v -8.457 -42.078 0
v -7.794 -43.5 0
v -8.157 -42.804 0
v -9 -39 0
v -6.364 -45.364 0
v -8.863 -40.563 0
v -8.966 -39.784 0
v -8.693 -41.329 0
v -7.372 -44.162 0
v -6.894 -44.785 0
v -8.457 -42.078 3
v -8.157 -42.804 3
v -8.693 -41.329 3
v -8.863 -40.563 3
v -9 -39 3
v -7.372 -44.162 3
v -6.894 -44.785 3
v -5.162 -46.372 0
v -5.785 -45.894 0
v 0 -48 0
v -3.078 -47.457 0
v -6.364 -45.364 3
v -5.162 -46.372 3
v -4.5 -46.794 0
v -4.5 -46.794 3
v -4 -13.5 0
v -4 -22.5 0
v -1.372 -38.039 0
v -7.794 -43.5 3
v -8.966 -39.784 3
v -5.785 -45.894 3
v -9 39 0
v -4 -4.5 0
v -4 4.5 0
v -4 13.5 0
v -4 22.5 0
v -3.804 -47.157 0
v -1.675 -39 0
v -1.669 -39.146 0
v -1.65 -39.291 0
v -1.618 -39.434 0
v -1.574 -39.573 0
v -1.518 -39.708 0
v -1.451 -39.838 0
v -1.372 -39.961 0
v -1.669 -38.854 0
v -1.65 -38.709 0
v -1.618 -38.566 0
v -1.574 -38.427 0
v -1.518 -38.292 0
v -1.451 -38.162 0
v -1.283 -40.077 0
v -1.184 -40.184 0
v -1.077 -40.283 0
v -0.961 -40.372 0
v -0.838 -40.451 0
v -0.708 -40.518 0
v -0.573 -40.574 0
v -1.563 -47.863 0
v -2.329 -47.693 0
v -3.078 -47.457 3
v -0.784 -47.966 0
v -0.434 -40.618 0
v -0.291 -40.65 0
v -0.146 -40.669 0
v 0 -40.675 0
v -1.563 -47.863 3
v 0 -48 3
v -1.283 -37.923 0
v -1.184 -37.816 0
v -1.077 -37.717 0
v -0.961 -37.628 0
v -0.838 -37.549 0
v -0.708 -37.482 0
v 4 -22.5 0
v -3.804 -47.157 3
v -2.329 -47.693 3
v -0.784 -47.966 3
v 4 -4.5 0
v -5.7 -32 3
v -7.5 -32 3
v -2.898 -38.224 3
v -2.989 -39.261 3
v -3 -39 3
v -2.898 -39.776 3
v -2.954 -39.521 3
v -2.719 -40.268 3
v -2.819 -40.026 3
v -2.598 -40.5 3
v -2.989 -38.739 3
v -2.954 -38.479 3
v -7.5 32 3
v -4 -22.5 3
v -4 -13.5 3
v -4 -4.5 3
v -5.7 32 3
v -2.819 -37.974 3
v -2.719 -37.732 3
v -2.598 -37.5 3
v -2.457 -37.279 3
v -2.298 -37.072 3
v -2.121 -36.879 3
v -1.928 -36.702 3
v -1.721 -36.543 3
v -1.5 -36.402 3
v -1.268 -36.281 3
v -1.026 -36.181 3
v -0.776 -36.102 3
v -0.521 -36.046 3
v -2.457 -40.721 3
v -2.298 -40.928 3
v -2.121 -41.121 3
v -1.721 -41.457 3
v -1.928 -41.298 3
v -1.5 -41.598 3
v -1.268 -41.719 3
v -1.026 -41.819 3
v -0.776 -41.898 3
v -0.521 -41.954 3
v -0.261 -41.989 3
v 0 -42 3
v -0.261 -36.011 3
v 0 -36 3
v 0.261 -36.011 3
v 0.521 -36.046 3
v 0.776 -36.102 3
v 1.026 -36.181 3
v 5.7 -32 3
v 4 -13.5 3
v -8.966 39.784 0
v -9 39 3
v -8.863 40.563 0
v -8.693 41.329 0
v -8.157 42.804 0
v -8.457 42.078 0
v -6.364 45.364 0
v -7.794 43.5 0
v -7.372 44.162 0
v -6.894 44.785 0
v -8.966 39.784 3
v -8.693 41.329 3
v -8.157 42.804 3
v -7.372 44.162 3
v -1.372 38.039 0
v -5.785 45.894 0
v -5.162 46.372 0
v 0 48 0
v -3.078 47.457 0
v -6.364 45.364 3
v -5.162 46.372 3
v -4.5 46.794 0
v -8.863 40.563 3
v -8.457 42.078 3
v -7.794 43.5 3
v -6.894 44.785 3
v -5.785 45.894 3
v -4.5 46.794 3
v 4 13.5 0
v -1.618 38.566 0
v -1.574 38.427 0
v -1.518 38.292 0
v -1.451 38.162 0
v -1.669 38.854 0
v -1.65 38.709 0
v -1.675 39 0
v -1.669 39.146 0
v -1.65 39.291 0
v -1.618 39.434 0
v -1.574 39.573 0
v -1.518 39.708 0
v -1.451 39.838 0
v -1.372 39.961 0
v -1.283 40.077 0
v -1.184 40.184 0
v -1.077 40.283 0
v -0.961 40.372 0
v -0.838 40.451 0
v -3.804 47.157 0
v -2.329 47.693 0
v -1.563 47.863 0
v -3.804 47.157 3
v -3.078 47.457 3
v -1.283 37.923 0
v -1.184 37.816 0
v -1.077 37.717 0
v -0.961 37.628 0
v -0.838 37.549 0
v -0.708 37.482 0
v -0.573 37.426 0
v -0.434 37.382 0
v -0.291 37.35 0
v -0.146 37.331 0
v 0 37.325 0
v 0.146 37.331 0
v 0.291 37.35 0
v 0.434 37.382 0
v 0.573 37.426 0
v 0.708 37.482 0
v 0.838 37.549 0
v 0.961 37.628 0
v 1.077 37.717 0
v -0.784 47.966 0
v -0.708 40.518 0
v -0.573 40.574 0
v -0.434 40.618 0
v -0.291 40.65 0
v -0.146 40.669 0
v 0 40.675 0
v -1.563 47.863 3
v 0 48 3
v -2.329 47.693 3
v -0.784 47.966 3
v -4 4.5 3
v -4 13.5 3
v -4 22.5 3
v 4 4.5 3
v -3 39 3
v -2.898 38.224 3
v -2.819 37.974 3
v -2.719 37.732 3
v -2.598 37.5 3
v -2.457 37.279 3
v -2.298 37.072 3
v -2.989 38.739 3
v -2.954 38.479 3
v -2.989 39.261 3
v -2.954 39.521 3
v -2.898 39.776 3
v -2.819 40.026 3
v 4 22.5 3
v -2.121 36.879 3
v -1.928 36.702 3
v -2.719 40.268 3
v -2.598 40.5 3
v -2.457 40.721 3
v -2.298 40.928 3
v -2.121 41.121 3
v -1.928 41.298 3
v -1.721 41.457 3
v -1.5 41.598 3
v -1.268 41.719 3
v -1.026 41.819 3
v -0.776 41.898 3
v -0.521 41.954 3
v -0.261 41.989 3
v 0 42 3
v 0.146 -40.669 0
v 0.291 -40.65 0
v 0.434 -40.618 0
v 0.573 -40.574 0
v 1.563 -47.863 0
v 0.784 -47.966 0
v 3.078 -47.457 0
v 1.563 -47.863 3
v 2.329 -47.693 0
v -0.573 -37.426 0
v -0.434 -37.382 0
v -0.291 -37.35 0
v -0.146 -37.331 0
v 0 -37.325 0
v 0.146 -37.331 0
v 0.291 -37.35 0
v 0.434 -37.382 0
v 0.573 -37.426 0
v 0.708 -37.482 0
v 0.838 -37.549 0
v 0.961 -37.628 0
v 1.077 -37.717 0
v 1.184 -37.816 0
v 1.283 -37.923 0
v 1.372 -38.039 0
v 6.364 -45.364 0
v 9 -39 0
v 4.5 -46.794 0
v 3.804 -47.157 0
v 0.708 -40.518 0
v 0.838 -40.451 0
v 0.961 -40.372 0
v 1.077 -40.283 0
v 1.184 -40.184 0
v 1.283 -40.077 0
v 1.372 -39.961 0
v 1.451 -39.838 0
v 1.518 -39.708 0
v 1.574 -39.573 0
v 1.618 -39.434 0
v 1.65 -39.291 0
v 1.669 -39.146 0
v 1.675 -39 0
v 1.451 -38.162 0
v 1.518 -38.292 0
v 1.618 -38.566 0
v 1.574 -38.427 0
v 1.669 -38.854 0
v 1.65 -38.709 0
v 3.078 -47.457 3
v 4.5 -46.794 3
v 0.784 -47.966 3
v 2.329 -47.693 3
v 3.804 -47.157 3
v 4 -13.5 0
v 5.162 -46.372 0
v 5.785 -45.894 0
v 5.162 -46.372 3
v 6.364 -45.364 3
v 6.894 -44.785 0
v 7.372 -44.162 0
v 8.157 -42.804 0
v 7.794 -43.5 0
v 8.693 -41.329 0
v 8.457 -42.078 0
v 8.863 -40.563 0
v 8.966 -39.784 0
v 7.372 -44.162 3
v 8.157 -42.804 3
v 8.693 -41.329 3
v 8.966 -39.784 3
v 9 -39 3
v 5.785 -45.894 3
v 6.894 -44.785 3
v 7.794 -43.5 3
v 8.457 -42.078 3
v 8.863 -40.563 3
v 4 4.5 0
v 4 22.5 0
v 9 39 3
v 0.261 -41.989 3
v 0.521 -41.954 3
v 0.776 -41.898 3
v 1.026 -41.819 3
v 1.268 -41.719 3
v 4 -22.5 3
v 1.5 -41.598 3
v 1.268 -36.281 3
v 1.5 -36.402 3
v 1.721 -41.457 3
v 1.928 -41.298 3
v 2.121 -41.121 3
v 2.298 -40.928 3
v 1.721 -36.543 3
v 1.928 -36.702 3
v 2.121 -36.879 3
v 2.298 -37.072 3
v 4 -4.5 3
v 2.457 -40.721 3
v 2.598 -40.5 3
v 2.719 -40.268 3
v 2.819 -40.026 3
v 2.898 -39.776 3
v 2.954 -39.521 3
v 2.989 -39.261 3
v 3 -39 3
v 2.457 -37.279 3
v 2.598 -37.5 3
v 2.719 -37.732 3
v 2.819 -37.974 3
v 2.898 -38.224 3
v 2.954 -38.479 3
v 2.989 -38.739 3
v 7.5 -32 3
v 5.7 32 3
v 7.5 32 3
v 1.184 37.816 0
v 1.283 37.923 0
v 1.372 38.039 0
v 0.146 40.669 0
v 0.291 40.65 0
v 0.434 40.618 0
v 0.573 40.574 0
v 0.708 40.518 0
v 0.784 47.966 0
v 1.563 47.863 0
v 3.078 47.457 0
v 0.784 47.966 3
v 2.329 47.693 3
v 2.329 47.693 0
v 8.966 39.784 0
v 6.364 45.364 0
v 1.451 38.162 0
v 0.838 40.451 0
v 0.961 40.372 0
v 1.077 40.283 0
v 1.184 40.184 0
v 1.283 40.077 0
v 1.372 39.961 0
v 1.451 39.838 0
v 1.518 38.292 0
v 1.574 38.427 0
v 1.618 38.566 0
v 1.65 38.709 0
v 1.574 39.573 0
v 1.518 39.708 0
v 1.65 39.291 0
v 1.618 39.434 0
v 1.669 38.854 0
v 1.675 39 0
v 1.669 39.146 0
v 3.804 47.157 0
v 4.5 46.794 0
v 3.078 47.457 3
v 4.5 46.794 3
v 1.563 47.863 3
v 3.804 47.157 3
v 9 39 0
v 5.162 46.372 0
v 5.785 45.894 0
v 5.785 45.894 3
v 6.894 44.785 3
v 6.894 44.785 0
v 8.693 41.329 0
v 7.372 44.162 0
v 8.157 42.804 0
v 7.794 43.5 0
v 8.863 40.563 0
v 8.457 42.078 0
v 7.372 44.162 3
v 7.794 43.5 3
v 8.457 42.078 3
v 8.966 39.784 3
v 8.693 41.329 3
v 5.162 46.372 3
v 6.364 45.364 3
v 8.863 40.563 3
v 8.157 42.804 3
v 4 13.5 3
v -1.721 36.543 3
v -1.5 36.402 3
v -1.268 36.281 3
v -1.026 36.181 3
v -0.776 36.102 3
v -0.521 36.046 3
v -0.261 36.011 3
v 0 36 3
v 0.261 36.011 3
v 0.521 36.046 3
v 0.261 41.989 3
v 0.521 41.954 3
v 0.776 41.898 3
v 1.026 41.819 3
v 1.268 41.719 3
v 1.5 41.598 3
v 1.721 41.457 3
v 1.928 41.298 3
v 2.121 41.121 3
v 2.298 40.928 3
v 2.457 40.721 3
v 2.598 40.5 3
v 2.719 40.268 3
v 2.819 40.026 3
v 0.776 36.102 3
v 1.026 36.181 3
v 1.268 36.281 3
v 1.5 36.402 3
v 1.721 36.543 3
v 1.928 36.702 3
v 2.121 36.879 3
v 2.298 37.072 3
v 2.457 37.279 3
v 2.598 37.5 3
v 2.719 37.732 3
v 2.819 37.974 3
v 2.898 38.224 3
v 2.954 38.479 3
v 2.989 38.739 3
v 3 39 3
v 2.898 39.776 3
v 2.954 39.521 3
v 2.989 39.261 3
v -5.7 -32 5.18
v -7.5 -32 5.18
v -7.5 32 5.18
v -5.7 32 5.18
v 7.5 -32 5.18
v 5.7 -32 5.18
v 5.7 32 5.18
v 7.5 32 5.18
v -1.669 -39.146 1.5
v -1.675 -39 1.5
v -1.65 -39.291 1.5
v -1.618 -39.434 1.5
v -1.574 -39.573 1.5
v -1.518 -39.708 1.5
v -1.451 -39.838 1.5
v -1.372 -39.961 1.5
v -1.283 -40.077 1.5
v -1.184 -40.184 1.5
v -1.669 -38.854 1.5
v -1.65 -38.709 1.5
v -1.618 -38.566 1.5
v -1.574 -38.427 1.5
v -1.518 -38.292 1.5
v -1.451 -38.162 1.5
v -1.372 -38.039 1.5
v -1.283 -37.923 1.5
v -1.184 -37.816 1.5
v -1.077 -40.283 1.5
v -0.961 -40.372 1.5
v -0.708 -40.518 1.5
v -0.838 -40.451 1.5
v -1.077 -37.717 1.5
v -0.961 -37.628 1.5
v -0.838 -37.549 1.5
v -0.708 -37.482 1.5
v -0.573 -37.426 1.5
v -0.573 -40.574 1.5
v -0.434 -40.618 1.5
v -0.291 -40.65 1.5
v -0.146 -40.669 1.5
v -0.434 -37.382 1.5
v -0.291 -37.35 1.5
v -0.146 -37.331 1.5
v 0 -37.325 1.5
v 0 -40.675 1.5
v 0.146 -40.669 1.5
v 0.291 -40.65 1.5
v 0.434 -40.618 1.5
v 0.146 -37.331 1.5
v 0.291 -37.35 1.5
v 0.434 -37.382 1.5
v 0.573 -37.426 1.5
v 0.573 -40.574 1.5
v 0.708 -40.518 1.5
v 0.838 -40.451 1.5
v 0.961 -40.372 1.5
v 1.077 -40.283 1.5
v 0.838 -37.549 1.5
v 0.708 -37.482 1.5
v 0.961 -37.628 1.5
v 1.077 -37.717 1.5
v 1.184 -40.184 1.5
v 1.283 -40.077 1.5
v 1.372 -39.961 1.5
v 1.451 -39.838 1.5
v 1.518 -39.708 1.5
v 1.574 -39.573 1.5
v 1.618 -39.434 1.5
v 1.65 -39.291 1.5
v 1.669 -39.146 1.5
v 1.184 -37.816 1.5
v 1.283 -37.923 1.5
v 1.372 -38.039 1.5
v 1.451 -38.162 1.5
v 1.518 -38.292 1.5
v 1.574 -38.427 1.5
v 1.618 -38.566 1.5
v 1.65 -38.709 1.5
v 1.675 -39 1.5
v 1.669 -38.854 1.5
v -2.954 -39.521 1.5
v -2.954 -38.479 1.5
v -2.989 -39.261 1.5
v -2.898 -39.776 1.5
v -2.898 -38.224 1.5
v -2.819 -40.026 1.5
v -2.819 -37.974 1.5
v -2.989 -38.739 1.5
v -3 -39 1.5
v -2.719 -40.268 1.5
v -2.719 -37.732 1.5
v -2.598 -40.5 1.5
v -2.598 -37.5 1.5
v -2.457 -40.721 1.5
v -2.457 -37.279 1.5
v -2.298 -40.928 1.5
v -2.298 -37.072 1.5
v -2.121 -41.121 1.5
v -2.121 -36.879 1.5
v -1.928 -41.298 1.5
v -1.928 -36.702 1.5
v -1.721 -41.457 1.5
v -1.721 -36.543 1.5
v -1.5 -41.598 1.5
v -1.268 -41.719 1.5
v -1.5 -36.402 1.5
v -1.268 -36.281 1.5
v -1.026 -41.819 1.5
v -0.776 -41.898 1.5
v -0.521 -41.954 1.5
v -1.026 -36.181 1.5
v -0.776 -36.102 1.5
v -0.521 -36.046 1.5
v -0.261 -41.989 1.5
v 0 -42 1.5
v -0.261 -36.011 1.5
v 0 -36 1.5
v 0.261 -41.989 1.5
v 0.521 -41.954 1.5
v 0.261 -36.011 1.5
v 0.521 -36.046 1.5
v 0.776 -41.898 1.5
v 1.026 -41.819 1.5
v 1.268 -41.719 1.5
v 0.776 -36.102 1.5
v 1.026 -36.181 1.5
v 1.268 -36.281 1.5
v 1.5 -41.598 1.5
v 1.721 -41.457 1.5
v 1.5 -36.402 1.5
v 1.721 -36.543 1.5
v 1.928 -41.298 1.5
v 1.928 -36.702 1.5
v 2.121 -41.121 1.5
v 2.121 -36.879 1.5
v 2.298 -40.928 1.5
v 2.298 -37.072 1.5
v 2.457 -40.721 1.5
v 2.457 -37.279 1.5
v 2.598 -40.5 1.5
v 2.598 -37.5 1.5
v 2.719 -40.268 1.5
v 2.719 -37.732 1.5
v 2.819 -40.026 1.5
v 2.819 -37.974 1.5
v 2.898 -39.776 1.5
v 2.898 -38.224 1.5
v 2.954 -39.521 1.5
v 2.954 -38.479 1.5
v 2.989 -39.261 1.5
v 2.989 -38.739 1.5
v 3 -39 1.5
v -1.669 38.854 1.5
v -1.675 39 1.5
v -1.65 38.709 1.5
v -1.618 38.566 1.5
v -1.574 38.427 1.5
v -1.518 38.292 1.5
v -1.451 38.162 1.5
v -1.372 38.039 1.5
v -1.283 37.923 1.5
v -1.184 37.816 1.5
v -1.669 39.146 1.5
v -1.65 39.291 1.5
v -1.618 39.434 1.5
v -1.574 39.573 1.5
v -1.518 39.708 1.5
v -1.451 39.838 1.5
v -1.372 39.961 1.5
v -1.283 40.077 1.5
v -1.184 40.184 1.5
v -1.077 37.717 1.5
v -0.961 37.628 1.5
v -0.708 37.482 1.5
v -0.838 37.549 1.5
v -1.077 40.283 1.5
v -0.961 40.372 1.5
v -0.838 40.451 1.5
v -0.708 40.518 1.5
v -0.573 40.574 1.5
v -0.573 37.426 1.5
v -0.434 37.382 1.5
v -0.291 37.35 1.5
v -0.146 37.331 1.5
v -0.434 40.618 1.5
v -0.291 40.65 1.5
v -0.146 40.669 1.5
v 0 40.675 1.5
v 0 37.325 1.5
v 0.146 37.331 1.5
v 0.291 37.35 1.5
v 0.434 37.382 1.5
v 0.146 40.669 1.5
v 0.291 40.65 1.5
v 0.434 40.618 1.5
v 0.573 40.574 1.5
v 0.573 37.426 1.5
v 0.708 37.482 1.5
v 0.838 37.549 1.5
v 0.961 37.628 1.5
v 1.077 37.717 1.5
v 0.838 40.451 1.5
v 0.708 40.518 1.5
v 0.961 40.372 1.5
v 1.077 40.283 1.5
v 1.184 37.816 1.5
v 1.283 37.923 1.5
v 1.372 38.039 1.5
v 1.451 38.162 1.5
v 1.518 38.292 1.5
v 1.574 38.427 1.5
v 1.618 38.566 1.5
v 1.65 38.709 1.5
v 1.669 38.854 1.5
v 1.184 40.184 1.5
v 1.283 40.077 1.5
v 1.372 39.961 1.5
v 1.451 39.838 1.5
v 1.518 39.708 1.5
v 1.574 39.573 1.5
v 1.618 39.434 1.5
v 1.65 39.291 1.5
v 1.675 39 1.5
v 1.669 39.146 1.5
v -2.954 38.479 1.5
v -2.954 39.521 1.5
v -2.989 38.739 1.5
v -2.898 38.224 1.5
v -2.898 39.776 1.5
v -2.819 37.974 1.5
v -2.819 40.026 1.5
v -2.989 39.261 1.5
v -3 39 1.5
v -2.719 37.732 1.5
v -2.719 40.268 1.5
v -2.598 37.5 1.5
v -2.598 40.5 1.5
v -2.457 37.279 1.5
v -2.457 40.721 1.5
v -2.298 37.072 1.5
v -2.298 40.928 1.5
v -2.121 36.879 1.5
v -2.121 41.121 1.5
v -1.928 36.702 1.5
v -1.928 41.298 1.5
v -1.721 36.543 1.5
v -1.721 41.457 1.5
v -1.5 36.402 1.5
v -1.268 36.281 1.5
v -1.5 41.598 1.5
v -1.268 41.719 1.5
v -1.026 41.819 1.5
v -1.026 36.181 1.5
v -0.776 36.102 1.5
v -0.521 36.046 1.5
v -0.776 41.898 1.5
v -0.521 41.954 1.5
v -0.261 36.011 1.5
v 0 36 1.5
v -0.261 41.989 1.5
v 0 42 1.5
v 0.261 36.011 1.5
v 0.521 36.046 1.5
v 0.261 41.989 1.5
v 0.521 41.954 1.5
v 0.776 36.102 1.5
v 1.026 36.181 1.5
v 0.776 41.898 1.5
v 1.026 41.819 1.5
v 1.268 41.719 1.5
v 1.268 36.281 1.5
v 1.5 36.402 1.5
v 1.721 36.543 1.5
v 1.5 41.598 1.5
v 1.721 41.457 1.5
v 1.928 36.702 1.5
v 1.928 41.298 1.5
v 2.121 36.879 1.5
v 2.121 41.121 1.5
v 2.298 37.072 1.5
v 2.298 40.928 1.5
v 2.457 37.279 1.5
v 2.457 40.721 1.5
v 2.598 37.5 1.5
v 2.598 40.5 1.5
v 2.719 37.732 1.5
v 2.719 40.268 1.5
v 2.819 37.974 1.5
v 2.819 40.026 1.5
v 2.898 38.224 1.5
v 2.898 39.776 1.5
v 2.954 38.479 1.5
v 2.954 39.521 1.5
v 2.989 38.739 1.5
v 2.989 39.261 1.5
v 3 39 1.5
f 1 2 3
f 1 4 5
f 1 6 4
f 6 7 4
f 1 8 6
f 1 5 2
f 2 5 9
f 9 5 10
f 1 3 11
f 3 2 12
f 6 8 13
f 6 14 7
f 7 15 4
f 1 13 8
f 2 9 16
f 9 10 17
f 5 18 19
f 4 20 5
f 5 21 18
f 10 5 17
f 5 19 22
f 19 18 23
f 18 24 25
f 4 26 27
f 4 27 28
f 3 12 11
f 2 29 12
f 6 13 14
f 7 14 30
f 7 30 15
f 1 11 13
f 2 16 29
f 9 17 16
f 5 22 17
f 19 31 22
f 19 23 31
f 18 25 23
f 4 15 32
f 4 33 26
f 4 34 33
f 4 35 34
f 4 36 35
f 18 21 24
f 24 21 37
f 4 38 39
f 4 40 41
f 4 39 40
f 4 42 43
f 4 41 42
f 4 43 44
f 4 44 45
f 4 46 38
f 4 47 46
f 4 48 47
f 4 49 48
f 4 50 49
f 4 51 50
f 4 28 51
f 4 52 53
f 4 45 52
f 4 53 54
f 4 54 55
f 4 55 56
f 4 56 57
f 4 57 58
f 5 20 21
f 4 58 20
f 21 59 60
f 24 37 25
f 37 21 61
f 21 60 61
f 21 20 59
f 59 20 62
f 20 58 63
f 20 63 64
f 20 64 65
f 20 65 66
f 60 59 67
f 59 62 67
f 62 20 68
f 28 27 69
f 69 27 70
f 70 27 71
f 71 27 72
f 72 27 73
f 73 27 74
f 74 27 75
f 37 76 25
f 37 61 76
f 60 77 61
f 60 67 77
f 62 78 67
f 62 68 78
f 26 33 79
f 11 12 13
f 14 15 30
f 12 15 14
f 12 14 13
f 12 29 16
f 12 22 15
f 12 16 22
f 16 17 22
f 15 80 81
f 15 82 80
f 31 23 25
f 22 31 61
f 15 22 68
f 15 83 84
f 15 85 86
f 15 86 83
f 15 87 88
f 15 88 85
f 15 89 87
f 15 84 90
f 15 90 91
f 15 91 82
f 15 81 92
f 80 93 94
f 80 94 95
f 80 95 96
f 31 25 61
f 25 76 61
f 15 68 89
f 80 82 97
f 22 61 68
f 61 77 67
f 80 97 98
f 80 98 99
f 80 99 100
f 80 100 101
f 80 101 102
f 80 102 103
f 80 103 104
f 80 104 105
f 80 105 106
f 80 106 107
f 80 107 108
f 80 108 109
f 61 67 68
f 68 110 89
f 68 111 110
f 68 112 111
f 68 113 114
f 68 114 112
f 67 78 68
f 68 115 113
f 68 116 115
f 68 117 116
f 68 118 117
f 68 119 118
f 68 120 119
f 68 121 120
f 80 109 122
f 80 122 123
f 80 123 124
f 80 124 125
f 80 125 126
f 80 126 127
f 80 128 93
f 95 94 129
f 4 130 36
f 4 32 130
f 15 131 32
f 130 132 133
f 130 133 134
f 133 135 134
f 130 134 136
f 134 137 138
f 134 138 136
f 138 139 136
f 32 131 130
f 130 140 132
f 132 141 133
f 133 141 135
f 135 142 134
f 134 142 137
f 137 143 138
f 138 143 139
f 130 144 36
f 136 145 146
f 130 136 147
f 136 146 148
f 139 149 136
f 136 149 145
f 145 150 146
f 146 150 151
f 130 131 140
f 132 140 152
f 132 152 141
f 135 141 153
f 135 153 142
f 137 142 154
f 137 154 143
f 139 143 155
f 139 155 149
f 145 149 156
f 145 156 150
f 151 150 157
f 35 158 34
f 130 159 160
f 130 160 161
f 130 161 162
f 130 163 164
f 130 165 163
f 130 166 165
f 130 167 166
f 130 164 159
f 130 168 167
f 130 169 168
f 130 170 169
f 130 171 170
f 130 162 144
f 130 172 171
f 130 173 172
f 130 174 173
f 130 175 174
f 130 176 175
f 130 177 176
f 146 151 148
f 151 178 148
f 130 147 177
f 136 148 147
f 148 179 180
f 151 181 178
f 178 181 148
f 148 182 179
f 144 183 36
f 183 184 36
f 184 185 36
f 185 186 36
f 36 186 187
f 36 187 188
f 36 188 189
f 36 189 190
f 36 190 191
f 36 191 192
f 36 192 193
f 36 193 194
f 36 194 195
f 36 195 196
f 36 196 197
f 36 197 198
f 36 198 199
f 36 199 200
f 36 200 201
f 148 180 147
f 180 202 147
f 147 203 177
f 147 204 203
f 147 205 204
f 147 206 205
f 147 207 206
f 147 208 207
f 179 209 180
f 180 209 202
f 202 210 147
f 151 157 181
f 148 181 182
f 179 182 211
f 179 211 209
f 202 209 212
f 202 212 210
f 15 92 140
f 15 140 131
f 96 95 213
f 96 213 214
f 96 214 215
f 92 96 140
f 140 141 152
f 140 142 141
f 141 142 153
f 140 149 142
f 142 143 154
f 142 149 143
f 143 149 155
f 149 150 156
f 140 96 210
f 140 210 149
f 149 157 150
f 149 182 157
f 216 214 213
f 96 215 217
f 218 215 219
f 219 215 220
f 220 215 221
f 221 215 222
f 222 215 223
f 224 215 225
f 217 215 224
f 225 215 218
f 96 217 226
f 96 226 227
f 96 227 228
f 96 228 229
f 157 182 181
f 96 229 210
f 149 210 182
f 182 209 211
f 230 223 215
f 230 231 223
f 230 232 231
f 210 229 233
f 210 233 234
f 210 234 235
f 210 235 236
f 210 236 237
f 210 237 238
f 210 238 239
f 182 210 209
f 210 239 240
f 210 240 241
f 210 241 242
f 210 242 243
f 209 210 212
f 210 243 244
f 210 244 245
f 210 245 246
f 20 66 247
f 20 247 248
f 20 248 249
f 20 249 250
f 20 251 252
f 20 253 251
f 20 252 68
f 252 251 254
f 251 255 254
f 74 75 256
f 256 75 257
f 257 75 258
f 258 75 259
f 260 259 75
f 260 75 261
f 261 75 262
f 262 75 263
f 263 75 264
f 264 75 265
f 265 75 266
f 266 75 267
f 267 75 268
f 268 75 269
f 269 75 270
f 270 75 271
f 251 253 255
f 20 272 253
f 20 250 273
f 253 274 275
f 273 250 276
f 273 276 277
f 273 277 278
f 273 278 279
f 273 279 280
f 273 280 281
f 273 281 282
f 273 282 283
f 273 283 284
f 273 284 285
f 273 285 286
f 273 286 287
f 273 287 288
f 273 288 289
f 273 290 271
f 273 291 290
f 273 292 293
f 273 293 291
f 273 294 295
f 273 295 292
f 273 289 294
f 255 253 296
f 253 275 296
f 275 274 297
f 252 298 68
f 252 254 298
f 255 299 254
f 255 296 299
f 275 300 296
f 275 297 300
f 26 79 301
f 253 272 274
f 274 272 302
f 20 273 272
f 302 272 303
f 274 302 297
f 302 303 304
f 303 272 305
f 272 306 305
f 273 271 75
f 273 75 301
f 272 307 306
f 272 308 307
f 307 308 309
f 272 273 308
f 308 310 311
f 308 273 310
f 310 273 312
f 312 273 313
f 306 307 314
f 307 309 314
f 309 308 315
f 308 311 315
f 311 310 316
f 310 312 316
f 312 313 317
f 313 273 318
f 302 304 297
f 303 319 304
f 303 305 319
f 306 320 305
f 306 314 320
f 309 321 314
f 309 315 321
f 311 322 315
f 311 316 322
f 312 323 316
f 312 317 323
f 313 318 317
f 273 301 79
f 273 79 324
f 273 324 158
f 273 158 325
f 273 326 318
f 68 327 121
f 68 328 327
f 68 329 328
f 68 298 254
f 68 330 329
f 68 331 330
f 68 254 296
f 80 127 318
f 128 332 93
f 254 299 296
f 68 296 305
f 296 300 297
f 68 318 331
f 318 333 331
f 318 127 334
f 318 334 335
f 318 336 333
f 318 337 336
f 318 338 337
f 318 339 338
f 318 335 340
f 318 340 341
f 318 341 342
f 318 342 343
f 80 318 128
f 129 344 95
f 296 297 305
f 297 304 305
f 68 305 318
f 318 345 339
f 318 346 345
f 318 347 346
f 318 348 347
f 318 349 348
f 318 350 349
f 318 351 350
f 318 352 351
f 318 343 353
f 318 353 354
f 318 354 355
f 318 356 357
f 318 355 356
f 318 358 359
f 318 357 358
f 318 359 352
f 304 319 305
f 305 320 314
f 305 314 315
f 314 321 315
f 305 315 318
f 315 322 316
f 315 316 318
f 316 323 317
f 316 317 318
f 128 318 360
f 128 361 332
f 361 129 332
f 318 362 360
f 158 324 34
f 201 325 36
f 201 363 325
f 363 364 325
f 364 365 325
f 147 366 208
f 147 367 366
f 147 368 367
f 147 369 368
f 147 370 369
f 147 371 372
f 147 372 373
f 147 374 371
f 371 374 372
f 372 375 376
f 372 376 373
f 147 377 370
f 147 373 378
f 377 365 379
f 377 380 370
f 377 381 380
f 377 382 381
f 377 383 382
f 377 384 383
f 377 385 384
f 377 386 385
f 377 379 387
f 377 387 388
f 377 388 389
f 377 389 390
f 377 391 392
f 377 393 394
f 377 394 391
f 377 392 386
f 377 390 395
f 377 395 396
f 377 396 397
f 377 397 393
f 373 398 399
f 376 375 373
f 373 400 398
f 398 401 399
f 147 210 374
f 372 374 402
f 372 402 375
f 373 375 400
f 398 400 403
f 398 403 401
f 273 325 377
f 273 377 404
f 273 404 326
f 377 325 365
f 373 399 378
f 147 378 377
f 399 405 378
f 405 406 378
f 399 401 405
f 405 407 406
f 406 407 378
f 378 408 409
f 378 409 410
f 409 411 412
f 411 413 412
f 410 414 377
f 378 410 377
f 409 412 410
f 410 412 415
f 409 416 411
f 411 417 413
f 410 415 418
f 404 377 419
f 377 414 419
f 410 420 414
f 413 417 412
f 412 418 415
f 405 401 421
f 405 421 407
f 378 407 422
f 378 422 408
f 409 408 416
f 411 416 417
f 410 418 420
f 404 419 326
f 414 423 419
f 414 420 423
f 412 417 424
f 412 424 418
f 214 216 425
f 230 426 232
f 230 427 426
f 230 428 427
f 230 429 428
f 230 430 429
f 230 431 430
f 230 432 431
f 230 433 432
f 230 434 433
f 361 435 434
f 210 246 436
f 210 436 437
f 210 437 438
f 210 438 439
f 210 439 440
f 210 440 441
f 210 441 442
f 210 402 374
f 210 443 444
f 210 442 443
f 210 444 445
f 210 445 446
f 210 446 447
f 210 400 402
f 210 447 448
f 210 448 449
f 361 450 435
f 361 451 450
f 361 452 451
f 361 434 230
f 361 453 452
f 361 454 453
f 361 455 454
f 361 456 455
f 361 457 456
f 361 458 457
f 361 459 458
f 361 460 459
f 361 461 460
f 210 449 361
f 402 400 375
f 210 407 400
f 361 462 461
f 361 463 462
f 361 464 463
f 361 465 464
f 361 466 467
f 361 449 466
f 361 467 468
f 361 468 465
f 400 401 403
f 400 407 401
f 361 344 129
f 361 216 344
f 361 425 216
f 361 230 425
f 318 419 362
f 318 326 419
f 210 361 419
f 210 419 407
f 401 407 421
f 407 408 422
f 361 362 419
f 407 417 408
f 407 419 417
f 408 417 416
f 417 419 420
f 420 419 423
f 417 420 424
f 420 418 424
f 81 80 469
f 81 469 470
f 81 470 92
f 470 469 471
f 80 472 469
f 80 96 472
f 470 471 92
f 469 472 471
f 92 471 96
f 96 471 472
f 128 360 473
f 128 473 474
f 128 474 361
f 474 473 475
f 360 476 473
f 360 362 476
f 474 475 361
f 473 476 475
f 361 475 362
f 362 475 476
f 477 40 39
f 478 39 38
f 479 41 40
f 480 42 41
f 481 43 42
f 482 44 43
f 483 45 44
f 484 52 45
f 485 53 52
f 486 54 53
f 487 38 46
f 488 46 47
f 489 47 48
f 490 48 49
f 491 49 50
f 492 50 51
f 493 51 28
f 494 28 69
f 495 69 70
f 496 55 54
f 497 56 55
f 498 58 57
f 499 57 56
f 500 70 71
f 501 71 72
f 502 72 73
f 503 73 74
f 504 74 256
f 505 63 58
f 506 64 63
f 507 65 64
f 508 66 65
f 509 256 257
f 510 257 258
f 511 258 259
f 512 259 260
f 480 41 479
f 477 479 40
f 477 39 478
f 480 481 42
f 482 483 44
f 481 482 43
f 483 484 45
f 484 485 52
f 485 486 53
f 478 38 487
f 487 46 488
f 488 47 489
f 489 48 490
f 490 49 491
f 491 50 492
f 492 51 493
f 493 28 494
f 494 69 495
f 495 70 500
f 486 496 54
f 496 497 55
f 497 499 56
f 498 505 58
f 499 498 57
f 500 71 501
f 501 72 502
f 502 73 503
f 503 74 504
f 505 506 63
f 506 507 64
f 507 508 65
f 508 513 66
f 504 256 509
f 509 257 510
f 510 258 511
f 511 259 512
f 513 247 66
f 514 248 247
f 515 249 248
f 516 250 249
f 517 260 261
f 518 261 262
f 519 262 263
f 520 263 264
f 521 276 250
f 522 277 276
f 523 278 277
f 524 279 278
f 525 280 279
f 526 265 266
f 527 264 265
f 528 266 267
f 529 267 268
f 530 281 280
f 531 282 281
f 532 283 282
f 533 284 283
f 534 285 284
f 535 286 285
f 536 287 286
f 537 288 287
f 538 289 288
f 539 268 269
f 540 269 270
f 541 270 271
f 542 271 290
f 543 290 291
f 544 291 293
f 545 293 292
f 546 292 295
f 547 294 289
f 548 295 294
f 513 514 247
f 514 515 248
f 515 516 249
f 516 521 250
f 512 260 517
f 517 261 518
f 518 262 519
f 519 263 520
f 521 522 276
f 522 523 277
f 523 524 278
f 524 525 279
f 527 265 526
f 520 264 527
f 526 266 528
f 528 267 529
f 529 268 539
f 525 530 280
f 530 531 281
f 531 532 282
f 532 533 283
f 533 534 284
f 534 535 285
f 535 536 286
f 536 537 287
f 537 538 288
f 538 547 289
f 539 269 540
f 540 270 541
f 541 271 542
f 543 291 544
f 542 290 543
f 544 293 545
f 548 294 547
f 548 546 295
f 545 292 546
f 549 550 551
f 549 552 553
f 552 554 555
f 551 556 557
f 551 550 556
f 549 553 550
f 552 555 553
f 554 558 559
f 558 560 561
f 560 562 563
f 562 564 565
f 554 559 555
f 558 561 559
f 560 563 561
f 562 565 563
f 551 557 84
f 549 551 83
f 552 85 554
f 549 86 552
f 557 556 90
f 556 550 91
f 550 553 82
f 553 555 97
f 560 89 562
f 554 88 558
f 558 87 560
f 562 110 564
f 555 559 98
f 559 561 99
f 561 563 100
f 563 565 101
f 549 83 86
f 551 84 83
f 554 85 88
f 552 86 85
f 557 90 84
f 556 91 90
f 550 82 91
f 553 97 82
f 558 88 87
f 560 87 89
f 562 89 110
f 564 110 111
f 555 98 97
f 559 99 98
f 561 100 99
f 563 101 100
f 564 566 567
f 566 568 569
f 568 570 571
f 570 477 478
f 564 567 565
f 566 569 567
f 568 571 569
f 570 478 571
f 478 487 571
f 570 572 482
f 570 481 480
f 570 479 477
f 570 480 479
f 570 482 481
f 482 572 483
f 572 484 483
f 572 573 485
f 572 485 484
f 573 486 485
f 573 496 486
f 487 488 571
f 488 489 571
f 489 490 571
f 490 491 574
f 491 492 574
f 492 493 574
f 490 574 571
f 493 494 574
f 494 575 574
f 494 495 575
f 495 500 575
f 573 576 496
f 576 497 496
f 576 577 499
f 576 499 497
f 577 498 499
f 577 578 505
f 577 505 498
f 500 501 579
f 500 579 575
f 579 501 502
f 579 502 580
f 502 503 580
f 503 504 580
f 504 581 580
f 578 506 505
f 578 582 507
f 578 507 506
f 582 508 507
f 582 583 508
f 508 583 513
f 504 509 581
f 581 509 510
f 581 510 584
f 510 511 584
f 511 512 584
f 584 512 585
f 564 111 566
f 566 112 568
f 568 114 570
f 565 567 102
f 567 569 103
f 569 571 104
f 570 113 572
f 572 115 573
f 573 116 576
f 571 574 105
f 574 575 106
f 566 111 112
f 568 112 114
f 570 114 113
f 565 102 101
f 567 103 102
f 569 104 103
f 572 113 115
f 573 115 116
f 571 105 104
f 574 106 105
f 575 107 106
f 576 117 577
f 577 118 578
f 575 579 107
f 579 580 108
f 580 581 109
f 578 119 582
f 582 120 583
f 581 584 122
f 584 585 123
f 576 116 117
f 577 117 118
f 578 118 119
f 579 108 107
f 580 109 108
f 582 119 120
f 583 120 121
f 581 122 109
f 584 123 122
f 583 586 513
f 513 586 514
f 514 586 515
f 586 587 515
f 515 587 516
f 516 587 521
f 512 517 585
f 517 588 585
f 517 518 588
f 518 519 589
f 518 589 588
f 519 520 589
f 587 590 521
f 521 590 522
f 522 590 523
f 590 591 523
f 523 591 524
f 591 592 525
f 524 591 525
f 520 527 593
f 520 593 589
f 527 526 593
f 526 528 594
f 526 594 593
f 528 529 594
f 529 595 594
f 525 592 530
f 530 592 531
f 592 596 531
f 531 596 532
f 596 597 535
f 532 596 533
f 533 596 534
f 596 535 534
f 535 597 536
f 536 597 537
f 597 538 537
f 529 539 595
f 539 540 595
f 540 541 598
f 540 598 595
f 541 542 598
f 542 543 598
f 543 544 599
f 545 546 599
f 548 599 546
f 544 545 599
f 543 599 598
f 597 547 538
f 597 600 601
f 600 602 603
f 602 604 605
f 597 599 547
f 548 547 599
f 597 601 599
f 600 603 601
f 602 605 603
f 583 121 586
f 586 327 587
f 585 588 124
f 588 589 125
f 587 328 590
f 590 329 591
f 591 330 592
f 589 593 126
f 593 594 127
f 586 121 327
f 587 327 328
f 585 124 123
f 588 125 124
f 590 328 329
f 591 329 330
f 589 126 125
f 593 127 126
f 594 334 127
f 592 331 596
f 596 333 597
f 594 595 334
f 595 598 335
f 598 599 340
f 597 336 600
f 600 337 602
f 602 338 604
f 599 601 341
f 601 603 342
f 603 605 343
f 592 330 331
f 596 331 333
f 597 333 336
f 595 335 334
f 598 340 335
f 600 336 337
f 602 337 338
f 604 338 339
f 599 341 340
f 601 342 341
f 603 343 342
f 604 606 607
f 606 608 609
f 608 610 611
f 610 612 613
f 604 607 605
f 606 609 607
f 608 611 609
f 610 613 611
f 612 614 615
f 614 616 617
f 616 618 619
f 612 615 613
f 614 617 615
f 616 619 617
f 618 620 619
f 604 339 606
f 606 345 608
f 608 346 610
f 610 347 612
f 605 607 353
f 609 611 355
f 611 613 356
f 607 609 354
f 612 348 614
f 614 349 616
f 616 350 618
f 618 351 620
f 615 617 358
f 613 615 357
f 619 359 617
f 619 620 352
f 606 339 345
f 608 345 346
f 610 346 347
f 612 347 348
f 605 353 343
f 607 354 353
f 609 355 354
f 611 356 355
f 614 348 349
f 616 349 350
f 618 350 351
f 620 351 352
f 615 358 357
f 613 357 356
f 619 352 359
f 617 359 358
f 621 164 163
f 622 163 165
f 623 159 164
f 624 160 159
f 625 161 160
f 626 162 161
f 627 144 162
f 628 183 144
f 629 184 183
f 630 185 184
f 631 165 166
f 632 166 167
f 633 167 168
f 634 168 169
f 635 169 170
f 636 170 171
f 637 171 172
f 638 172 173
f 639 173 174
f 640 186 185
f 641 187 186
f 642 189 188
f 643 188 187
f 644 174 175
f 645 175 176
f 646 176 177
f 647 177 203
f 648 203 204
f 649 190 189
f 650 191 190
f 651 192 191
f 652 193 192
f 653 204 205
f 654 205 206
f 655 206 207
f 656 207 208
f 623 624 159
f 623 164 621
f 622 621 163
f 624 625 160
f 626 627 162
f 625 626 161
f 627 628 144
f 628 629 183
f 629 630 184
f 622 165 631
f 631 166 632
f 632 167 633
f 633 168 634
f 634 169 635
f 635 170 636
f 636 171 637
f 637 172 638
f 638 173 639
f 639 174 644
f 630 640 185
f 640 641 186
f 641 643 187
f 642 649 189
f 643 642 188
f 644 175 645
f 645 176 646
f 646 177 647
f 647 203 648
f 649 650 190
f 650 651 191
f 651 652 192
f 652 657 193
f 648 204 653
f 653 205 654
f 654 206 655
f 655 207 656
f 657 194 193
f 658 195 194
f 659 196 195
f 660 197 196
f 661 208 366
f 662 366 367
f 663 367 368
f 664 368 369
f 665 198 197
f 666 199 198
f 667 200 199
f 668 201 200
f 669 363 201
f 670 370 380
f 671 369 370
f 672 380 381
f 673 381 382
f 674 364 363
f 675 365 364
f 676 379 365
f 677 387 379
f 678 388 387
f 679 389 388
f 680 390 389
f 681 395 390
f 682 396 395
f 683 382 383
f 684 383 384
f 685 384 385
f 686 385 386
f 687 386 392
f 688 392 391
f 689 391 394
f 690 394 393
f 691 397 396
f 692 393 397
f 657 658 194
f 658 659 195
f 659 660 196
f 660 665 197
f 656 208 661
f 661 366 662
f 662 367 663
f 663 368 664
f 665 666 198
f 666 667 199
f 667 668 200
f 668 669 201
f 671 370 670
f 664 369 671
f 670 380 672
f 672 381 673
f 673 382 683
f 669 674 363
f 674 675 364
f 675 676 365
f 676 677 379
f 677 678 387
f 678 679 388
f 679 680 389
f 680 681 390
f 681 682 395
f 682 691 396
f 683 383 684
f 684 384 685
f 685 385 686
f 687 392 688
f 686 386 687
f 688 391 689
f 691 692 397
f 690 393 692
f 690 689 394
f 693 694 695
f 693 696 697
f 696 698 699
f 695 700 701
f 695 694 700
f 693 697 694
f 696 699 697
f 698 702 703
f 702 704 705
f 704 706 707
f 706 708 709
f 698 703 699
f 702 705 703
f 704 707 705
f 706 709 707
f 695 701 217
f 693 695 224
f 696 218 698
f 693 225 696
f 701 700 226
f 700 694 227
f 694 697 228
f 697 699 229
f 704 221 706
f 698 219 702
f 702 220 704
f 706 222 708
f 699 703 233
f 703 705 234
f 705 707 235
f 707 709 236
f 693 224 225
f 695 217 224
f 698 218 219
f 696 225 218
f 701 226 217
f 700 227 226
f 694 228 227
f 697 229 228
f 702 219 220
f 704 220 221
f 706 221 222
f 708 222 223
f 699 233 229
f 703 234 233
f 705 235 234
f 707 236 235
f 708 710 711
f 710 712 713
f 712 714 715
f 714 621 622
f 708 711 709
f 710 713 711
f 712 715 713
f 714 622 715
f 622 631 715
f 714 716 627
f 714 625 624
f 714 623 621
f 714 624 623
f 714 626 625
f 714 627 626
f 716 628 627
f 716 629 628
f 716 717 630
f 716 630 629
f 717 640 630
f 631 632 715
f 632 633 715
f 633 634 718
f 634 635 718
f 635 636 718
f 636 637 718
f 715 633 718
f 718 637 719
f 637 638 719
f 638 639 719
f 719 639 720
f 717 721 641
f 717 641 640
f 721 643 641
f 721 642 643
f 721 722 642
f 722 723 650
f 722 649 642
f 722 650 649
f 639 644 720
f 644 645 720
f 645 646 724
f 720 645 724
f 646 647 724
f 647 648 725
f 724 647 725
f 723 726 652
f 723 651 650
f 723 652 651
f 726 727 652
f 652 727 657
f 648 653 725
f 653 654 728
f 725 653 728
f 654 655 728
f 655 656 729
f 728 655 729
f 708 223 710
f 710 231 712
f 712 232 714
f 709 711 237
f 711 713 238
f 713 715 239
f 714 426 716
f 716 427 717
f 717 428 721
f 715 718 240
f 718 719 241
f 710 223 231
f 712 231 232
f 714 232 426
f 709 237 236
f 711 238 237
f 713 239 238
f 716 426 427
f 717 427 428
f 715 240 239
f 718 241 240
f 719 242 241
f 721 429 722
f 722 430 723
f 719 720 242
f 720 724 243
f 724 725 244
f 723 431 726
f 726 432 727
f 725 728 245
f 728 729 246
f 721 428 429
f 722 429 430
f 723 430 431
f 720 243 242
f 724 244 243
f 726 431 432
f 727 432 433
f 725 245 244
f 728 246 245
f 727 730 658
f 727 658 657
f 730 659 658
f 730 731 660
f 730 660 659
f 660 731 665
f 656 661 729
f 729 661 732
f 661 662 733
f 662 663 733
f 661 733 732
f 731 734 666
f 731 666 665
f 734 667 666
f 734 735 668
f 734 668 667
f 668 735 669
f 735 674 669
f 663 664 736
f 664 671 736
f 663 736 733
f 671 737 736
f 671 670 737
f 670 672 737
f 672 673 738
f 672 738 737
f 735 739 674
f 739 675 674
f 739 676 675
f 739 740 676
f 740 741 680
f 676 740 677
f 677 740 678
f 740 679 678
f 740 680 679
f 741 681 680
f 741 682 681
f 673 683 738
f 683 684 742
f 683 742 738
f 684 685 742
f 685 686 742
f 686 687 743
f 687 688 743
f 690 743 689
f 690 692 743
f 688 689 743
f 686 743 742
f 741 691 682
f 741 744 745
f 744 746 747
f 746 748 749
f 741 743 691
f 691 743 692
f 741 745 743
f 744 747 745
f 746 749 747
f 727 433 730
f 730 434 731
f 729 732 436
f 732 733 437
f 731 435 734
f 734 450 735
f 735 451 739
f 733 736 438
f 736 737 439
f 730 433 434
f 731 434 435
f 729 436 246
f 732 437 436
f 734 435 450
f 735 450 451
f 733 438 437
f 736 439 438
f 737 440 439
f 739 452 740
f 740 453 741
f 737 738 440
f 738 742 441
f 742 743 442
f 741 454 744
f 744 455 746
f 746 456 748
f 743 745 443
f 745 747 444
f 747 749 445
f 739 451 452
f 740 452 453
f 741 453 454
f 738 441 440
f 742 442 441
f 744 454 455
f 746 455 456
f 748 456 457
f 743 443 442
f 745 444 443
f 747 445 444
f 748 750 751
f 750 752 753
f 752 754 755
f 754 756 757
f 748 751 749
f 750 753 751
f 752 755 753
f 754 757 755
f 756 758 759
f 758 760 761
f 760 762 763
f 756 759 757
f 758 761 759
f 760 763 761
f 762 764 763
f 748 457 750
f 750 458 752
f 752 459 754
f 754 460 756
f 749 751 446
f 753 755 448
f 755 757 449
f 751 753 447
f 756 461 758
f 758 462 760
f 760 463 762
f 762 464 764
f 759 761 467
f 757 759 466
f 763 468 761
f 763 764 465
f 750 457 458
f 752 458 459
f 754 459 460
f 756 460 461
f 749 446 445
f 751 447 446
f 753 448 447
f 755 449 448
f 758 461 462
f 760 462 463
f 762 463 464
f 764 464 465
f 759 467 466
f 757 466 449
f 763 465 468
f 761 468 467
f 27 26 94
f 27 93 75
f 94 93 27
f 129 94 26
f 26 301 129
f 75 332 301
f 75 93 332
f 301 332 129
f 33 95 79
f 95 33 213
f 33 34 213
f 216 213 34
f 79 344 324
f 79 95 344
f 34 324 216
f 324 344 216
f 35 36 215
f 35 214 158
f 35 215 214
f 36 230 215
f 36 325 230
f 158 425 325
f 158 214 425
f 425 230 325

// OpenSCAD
// ============================================================================
// ns-conv: Nintendo Switch v1 (Erista) -> Clamshell Cyberdeck Conversion
// File: cad/battery_retainer.scad
// Part: Bolt-On Power Bank Retention Strap (Translucent Lilac SLA)
// Purpose:
//   Secures the INIU 45W Slim Power Bank (110 x 68 x 18.5 mm) inside the
//   lower base enclosure over a 1.5mm EVA/Poron foam pad. Bolts into the two
//   external M3 bosses located 4.5mm outside the battery casing so no screw
//   ever approaches the lithium-polymer pouch.
// ============================================================================

include <config.scad>

strap_span_y = pbank_d + 1.0 + 2 * pbank_safe_gap; // 68 + 1 + 9 = 78.0 mm center-to-center
strap_w      = 18.0;
strap_t      = 3.0;

module battery_retainer() {
    difference() {
        union() {
            // Main flat bridge bar with rounded mounting ears
            hull() {
                for (sy = [-strap_span_y/2, strap_span_y/2]) {
                    translate([0, sy, 0])
                        cylinder(d = strap_w, h = strap_t);
                }
            }
            // Side stiffener ribs along the bridge span
            for (sx = [-strap_w/2 + 1.5, strap_w/2 - 3.3]) {
                translate([sx, -pbank_d/2 + 2.0, strap_t - eps])
                    cube([1.8, pbank_d - 4.0, 2.2]);
            }
        }

        // 2x M3 Counterbored Mounting Holes at +-strap_span_y/2
        for (sy = [-strap_span_y/2, strap_span_y/2]) {
            translate([0, sy, -eps])
                cylinder(d = m3_thru_d, h = strap_t + 4.0);
            translate([0, sy, strap_t - 1.5])
                cylinder(d = m3_head_d, h = 2.0);
        }

        // Weight-relief / ventilation slots in center of strap
        for (sy = [-18.0, 0.0, 18.0]) {
            translate([-4.0, sy - 4.5, -eps])
                cube([8.0, 9.0, strap_t + 4.0]);
        }
    }
}

battery_retainer();
